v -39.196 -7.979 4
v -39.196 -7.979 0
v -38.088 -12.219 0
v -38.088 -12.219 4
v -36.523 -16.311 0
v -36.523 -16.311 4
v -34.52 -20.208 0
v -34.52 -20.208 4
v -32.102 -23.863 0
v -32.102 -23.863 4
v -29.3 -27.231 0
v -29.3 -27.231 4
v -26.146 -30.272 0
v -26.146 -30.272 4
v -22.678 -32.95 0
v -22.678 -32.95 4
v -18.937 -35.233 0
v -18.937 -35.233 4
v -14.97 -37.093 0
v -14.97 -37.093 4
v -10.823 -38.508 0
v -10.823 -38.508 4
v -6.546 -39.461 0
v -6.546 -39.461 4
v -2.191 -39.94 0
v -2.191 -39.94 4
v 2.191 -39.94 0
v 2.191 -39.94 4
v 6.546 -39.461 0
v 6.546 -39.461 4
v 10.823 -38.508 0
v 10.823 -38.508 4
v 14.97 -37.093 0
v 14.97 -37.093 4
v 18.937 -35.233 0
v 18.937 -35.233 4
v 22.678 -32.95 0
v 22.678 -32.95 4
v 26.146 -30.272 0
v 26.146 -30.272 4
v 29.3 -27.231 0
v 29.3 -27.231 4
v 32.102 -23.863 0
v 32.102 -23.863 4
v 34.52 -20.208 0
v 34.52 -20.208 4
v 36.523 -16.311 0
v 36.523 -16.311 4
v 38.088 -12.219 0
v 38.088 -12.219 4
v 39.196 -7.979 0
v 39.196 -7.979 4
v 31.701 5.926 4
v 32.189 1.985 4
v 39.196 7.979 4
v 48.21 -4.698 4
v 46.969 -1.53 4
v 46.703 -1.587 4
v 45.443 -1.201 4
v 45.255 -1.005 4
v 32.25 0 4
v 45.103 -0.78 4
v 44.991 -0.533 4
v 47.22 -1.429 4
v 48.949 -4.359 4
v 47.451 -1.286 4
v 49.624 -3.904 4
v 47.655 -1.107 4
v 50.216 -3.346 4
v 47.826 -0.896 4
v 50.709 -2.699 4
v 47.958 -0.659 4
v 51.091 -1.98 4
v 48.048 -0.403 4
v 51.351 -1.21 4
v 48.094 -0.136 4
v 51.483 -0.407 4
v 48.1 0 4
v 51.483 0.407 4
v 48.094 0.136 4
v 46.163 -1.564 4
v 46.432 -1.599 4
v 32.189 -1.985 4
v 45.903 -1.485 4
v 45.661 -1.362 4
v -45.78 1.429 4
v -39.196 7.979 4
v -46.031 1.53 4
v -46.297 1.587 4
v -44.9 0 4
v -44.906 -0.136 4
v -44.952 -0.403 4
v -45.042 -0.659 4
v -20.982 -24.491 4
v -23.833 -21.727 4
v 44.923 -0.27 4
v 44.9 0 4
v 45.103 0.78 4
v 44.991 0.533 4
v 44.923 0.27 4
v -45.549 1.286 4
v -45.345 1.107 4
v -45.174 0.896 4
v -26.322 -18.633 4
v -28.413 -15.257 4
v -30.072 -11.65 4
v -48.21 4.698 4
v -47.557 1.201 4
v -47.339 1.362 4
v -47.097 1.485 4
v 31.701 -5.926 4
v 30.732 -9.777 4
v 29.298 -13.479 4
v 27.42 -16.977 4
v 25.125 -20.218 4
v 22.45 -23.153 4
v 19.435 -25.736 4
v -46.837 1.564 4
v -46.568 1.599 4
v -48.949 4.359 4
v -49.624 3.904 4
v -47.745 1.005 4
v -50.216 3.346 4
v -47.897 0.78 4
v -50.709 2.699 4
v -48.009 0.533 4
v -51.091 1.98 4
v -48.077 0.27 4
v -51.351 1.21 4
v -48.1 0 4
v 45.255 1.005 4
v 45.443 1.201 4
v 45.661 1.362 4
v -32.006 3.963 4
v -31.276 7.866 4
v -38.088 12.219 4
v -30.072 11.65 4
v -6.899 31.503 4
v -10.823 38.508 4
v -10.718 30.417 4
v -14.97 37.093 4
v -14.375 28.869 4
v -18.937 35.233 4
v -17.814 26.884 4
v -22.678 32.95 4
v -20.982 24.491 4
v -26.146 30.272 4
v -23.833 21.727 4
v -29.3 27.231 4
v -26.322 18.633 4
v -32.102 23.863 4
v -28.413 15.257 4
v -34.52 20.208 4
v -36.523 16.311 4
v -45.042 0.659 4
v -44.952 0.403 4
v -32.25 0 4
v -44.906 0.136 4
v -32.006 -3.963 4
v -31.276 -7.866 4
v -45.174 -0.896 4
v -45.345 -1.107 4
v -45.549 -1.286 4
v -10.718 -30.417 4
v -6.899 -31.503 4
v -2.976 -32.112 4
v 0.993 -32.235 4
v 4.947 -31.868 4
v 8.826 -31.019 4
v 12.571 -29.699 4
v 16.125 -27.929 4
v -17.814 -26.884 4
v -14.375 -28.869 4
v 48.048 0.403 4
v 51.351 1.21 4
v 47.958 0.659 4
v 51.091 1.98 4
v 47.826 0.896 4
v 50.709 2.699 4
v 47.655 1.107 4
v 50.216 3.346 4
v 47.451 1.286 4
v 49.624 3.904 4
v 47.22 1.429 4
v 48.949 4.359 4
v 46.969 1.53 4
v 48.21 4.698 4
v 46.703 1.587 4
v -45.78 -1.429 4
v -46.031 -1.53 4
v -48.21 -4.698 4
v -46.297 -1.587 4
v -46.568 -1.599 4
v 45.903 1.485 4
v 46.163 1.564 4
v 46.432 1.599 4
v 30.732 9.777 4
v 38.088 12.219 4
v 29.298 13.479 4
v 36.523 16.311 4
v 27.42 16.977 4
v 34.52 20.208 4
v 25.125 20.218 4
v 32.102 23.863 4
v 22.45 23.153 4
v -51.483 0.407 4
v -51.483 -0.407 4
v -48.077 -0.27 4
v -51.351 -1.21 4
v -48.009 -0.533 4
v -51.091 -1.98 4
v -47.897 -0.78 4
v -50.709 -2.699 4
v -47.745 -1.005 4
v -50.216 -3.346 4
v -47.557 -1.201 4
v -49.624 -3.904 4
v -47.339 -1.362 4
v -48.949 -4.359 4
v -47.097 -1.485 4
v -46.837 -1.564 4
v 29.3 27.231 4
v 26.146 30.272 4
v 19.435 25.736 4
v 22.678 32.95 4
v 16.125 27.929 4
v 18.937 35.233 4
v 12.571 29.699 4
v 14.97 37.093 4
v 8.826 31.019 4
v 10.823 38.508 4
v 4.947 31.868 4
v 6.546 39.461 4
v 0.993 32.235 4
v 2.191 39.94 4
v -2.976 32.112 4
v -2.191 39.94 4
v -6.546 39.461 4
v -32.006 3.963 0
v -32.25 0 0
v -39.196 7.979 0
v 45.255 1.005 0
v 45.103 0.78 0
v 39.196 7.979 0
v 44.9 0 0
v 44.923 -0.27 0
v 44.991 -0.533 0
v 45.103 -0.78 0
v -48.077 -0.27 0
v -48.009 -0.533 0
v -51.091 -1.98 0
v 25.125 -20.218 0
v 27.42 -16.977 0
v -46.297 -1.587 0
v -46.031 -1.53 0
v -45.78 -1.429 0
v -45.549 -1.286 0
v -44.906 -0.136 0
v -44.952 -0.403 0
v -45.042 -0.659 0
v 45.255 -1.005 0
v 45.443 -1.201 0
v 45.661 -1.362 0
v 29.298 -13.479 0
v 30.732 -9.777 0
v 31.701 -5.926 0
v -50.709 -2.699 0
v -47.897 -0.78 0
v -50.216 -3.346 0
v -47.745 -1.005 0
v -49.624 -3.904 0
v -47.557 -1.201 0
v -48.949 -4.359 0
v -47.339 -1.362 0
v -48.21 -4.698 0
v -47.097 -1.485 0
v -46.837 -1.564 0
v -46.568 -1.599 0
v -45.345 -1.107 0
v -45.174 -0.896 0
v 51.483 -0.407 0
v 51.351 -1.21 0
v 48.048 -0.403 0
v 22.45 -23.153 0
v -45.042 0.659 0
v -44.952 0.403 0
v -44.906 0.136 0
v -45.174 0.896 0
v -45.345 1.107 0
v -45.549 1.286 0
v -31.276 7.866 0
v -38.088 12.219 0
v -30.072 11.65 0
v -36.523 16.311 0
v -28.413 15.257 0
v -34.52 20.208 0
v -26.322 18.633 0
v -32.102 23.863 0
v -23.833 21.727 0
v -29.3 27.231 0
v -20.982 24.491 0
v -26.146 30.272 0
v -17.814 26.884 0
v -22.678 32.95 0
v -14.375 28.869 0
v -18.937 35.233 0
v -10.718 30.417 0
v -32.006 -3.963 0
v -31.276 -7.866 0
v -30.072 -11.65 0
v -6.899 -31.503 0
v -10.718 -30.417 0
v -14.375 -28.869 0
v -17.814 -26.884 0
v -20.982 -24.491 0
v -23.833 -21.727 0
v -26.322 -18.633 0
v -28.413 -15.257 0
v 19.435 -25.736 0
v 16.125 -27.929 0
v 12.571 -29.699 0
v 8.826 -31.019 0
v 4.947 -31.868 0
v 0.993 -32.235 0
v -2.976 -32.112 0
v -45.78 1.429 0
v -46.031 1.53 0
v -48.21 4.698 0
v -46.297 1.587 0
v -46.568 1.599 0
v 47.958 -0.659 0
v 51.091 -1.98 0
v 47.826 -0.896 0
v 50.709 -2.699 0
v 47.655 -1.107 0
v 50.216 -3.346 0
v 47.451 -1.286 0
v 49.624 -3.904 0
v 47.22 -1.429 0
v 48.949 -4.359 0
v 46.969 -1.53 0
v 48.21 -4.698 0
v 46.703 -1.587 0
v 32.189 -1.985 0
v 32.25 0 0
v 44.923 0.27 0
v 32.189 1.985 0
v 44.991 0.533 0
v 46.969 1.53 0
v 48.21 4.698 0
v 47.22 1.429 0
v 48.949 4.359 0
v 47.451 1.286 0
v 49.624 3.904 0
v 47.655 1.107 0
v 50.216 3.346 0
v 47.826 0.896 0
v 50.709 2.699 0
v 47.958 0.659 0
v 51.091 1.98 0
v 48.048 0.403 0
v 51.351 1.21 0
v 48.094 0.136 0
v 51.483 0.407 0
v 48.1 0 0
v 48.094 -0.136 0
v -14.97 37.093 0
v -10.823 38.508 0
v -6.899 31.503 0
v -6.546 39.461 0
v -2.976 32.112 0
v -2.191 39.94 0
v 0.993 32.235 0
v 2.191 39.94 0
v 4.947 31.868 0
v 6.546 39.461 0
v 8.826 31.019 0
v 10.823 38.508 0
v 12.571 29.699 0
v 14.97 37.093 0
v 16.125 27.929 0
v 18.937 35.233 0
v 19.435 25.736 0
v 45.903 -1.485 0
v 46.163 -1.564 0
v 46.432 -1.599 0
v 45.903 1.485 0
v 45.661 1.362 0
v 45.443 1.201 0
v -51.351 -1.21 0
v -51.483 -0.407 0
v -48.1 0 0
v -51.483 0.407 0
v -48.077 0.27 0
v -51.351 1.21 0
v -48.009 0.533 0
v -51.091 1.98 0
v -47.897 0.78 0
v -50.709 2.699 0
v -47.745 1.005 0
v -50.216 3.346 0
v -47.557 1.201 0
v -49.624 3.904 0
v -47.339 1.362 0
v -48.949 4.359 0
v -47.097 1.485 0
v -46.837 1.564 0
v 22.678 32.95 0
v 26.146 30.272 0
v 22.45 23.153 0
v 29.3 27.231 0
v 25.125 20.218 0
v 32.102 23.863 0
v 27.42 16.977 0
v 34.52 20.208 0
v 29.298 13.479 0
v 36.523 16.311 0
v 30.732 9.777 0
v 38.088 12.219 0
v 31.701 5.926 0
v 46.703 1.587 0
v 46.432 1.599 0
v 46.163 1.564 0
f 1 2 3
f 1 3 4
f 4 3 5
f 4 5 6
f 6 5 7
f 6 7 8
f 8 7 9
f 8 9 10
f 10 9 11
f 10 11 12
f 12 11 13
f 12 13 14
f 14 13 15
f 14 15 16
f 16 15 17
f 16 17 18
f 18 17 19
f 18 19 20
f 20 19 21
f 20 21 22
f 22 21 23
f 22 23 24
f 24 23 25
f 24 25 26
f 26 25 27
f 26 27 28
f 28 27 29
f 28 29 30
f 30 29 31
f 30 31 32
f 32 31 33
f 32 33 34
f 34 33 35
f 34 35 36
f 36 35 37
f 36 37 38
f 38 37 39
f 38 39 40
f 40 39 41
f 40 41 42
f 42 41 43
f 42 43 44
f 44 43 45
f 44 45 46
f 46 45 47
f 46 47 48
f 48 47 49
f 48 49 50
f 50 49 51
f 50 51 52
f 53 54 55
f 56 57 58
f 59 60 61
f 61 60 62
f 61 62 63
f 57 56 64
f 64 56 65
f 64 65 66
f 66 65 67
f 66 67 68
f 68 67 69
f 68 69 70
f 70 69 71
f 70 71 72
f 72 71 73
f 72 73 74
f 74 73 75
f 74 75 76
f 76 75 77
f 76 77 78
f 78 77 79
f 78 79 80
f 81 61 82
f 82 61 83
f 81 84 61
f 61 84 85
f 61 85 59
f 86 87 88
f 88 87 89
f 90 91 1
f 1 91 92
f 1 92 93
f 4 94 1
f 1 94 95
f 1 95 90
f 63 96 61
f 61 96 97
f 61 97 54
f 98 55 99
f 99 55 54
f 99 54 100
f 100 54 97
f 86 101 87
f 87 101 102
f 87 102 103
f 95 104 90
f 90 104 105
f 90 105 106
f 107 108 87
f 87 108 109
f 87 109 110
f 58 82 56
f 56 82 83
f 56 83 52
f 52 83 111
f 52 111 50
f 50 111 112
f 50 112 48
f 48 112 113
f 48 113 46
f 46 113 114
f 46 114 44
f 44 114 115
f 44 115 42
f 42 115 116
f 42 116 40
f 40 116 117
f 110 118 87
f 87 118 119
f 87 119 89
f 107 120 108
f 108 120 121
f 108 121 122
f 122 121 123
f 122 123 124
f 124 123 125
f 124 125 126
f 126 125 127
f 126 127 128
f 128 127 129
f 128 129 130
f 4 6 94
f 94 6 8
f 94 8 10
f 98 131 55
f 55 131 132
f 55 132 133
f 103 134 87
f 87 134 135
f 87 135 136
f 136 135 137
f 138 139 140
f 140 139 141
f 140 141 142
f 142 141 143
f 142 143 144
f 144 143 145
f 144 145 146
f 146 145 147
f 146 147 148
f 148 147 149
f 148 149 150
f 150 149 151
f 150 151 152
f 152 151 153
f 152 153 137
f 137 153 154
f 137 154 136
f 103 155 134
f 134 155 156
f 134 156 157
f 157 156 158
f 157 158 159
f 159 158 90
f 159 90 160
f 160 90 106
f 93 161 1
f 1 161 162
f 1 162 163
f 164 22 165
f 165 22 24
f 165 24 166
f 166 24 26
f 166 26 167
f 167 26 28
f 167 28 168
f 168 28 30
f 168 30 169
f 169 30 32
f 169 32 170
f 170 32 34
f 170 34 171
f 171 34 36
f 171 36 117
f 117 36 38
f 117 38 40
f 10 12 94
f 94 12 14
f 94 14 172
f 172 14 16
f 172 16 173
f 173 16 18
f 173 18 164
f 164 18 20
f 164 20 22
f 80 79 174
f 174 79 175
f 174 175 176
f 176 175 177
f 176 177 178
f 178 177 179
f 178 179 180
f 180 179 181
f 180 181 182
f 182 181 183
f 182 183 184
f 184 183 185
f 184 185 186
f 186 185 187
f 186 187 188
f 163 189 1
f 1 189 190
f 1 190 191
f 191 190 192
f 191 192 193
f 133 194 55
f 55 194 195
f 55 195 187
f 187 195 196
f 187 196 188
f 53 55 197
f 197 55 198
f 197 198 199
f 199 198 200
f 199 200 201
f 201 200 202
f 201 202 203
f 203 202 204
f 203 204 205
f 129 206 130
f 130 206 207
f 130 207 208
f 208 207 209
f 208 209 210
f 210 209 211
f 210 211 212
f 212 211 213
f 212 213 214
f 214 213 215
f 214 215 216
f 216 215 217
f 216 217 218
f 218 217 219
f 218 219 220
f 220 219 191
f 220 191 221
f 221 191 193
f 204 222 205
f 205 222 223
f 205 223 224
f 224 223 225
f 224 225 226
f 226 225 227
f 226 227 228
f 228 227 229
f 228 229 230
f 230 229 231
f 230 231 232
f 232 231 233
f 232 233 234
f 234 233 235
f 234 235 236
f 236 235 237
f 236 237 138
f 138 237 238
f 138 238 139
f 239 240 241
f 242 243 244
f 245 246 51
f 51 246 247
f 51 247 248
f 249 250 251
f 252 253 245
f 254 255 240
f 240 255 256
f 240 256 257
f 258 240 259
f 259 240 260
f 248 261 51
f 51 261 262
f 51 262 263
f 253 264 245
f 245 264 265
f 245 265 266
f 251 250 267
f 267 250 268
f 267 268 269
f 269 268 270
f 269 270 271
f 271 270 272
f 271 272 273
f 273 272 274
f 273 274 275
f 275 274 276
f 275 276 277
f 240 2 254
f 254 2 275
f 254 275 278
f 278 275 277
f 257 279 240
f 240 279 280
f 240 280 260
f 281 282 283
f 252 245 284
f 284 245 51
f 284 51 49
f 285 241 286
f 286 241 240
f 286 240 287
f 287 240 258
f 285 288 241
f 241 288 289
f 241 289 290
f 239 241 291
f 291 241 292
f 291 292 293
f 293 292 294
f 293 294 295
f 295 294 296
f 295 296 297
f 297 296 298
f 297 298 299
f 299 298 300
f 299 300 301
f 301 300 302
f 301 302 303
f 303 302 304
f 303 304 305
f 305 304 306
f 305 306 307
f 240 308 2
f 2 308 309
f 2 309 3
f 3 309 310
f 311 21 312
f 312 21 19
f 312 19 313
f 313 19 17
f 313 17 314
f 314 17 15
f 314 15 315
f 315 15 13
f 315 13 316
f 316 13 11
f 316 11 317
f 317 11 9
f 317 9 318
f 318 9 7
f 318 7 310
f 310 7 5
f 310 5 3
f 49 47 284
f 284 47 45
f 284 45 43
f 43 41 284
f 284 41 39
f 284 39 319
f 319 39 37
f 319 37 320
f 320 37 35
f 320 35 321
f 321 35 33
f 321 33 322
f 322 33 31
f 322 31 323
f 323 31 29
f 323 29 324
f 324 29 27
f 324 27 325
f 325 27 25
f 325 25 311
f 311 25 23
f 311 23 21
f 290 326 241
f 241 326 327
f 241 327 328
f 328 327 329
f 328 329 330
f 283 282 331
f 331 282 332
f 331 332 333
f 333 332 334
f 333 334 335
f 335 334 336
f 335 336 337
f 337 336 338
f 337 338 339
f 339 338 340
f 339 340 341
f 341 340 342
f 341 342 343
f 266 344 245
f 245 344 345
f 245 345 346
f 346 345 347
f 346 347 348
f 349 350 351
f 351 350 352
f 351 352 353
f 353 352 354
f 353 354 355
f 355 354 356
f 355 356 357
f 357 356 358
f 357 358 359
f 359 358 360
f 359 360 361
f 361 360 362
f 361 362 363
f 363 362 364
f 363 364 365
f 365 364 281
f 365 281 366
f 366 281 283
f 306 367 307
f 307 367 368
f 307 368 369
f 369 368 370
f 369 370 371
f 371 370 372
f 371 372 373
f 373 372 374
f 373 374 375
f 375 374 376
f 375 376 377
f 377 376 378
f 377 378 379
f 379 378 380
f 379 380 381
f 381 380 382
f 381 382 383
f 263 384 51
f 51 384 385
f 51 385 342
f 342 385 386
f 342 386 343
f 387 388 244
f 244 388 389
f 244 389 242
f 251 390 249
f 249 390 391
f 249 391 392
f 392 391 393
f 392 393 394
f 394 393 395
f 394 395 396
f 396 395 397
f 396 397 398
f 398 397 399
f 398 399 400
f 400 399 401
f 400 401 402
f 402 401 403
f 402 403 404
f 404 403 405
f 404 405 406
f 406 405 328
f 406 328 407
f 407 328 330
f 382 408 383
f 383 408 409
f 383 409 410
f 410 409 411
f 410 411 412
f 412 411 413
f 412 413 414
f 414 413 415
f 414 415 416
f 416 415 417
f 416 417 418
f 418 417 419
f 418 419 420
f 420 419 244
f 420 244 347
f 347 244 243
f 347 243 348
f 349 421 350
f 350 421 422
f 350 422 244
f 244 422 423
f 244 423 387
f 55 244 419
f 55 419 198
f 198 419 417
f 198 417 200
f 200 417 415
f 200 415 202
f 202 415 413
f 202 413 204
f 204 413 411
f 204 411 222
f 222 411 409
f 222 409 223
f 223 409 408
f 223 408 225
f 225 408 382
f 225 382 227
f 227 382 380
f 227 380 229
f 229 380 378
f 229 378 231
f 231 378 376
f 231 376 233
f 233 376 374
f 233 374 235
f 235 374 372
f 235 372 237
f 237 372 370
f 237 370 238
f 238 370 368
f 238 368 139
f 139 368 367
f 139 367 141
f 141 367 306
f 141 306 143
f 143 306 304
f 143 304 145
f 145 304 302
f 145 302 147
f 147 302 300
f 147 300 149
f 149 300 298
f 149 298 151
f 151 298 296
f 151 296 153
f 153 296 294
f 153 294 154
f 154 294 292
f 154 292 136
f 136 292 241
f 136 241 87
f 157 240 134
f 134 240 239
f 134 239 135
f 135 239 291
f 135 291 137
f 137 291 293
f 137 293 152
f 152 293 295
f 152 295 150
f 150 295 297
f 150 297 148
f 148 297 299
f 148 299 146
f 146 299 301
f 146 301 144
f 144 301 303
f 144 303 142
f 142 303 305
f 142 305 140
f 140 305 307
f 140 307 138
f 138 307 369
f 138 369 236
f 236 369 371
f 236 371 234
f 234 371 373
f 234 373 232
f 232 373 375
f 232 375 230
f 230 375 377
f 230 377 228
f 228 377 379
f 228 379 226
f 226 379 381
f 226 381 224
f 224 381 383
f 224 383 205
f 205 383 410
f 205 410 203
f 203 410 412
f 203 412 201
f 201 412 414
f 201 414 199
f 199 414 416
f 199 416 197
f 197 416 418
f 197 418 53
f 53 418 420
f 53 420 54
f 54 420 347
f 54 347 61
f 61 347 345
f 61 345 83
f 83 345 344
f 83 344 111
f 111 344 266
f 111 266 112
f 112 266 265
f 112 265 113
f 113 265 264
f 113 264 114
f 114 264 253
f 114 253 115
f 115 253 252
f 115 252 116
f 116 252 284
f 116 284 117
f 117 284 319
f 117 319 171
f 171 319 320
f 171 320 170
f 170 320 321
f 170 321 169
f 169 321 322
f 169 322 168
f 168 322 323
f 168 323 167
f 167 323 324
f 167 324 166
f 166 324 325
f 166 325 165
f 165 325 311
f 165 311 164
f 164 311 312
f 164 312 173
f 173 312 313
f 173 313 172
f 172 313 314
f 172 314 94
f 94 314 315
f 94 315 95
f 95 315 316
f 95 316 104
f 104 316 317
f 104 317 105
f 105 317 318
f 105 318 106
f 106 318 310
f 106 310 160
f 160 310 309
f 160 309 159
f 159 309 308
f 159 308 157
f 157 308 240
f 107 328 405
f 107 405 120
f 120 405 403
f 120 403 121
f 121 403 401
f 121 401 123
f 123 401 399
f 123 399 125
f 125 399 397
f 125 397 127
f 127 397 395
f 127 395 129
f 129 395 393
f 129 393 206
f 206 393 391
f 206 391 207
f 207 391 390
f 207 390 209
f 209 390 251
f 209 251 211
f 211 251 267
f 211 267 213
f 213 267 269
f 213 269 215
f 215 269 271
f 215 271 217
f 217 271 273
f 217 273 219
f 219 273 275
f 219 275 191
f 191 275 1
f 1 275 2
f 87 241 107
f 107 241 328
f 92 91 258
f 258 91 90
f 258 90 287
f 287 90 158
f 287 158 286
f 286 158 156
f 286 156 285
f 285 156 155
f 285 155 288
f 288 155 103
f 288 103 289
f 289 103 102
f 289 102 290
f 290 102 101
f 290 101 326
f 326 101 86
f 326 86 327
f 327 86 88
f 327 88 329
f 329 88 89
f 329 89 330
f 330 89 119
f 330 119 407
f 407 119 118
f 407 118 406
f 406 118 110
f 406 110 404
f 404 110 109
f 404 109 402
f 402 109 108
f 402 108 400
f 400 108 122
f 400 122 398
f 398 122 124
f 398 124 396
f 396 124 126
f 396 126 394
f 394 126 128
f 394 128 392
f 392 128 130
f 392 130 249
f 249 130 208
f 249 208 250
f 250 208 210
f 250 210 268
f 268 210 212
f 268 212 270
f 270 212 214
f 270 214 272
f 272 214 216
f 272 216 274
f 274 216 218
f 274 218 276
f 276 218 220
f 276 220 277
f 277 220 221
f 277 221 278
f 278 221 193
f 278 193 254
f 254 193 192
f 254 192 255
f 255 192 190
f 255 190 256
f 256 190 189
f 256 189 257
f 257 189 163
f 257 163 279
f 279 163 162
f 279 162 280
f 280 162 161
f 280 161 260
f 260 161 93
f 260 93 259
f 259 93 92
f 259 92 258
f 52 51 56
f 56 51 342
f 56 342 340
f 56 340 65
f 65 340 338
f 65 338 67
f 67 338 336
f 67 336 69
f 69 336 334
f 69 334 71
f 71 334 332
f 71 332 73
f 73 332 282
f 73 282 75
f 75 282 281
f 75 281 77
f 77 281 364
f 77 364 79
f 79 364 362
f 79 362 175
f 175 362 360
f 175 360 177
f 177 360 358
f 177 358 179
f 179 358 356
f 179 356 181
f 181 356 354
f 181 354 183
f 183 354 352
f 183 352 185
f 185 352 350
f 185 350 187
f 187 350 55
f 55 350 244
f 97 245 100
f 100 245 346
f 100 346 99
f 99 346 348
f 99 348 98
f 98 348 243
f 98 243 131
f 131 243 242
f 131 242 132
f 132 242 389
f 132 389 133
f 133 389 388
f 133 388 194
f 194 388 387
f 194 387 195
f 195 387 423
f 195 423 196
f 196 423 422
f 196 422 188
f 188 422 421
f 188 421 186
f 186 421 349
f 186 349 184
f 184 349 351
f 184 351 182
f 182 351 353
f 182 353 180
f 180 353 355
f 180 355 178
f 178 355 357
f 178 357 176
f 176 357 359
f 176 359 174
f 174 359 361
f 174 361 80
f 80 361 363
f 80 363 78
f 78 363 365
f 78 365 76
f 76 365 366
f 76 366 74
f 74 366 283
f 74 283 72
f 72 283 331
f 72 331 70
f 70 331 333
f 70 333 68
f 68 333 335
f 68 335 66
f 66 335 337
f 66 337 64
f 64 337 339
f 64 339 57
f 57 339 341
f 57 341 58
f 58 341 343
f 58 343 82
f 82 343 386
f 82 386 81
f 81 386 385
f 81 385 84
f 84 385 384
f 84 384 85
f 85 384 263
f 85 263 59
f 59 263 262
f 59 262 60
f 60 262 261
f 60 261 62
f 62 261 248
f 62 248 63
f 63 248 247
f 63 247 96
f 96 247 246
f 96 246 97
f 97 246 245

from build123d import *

# Parameters (mm, degrees)
SKETCH_1_R      = 40
SKETCH_1_R_2    = 32.25
EXTRUDE_1_DEPTH = 4
SKETCH_2_R      = 1.6
EXTRUDE_2_DEPTH = 4


with BuildPart() as part:
    # 草图1 → 凸台-拉伸1 (new body)
    with BuildSketch(Plane.XY):
        Circle(SKETCH_1_R)
        Circle(SKETCH_1_R_2, mode=Mode.SUBTRACT)
    extrude(amount=EXTRUDE_1_DEPTH)

    # 草图2 → 凸台-拉伸2 (add)
    # profile 1 of 2: a face of its own
    with BuildSketch(Plane(origin=(0, 0, 0), x_dir=(-1, 0, 0), z_dir=(0, 0, -1))):
        with BuildLine():
            Line((48.210100717, 4.698463104), (39.196053971, 7.97930781))
            ThreePointArc((39.196053971, 7.97930781), (40, 0), (39.196053971, -7.97930781))
            Line((39.196053971, -7.97930781), (48.210100717, -4.698463104))
            ThreePointArc((48.210100717, -4.698463104), (51.5, 0), (48.210100717, 4.698463104))
        make_face()
        with Locations((46.5, 0)):
            Circle(SKETCH_2_R, mode=Mode.SUBTRACT)
    # profile 2 of 2: a face of its own
    with BuildSketch(Plane(origin=(0, 0, 0), x_dir=(-1, 0, 0), z_dir=(0, 0, -1))):
        with BuildLine():
            Line((-48.210100717, -4.698463104), (-39.196053971, -7.97930781))
            ThreePointArc((-39.196053971, -7.97930781), (-40, 0), (-39.196053971, 7.97930781))
            Line((-39.196053971, 7.97930781), (-48.210100717, 4.698463104))
            ThreePointArc((-48.210100717, 4.698463104), (-51.5, 0), (-48.210100717, -4.698463104))
        make_face()
        with Locations(Location((-46.5, 0, 0), (0, 0, 180))):
            Circle(SKETCH_2_R, mode=Mode.SUBTRACT)
    extrude(amount=-EXTRUDE_2_DEPTH)


solid = part.part
